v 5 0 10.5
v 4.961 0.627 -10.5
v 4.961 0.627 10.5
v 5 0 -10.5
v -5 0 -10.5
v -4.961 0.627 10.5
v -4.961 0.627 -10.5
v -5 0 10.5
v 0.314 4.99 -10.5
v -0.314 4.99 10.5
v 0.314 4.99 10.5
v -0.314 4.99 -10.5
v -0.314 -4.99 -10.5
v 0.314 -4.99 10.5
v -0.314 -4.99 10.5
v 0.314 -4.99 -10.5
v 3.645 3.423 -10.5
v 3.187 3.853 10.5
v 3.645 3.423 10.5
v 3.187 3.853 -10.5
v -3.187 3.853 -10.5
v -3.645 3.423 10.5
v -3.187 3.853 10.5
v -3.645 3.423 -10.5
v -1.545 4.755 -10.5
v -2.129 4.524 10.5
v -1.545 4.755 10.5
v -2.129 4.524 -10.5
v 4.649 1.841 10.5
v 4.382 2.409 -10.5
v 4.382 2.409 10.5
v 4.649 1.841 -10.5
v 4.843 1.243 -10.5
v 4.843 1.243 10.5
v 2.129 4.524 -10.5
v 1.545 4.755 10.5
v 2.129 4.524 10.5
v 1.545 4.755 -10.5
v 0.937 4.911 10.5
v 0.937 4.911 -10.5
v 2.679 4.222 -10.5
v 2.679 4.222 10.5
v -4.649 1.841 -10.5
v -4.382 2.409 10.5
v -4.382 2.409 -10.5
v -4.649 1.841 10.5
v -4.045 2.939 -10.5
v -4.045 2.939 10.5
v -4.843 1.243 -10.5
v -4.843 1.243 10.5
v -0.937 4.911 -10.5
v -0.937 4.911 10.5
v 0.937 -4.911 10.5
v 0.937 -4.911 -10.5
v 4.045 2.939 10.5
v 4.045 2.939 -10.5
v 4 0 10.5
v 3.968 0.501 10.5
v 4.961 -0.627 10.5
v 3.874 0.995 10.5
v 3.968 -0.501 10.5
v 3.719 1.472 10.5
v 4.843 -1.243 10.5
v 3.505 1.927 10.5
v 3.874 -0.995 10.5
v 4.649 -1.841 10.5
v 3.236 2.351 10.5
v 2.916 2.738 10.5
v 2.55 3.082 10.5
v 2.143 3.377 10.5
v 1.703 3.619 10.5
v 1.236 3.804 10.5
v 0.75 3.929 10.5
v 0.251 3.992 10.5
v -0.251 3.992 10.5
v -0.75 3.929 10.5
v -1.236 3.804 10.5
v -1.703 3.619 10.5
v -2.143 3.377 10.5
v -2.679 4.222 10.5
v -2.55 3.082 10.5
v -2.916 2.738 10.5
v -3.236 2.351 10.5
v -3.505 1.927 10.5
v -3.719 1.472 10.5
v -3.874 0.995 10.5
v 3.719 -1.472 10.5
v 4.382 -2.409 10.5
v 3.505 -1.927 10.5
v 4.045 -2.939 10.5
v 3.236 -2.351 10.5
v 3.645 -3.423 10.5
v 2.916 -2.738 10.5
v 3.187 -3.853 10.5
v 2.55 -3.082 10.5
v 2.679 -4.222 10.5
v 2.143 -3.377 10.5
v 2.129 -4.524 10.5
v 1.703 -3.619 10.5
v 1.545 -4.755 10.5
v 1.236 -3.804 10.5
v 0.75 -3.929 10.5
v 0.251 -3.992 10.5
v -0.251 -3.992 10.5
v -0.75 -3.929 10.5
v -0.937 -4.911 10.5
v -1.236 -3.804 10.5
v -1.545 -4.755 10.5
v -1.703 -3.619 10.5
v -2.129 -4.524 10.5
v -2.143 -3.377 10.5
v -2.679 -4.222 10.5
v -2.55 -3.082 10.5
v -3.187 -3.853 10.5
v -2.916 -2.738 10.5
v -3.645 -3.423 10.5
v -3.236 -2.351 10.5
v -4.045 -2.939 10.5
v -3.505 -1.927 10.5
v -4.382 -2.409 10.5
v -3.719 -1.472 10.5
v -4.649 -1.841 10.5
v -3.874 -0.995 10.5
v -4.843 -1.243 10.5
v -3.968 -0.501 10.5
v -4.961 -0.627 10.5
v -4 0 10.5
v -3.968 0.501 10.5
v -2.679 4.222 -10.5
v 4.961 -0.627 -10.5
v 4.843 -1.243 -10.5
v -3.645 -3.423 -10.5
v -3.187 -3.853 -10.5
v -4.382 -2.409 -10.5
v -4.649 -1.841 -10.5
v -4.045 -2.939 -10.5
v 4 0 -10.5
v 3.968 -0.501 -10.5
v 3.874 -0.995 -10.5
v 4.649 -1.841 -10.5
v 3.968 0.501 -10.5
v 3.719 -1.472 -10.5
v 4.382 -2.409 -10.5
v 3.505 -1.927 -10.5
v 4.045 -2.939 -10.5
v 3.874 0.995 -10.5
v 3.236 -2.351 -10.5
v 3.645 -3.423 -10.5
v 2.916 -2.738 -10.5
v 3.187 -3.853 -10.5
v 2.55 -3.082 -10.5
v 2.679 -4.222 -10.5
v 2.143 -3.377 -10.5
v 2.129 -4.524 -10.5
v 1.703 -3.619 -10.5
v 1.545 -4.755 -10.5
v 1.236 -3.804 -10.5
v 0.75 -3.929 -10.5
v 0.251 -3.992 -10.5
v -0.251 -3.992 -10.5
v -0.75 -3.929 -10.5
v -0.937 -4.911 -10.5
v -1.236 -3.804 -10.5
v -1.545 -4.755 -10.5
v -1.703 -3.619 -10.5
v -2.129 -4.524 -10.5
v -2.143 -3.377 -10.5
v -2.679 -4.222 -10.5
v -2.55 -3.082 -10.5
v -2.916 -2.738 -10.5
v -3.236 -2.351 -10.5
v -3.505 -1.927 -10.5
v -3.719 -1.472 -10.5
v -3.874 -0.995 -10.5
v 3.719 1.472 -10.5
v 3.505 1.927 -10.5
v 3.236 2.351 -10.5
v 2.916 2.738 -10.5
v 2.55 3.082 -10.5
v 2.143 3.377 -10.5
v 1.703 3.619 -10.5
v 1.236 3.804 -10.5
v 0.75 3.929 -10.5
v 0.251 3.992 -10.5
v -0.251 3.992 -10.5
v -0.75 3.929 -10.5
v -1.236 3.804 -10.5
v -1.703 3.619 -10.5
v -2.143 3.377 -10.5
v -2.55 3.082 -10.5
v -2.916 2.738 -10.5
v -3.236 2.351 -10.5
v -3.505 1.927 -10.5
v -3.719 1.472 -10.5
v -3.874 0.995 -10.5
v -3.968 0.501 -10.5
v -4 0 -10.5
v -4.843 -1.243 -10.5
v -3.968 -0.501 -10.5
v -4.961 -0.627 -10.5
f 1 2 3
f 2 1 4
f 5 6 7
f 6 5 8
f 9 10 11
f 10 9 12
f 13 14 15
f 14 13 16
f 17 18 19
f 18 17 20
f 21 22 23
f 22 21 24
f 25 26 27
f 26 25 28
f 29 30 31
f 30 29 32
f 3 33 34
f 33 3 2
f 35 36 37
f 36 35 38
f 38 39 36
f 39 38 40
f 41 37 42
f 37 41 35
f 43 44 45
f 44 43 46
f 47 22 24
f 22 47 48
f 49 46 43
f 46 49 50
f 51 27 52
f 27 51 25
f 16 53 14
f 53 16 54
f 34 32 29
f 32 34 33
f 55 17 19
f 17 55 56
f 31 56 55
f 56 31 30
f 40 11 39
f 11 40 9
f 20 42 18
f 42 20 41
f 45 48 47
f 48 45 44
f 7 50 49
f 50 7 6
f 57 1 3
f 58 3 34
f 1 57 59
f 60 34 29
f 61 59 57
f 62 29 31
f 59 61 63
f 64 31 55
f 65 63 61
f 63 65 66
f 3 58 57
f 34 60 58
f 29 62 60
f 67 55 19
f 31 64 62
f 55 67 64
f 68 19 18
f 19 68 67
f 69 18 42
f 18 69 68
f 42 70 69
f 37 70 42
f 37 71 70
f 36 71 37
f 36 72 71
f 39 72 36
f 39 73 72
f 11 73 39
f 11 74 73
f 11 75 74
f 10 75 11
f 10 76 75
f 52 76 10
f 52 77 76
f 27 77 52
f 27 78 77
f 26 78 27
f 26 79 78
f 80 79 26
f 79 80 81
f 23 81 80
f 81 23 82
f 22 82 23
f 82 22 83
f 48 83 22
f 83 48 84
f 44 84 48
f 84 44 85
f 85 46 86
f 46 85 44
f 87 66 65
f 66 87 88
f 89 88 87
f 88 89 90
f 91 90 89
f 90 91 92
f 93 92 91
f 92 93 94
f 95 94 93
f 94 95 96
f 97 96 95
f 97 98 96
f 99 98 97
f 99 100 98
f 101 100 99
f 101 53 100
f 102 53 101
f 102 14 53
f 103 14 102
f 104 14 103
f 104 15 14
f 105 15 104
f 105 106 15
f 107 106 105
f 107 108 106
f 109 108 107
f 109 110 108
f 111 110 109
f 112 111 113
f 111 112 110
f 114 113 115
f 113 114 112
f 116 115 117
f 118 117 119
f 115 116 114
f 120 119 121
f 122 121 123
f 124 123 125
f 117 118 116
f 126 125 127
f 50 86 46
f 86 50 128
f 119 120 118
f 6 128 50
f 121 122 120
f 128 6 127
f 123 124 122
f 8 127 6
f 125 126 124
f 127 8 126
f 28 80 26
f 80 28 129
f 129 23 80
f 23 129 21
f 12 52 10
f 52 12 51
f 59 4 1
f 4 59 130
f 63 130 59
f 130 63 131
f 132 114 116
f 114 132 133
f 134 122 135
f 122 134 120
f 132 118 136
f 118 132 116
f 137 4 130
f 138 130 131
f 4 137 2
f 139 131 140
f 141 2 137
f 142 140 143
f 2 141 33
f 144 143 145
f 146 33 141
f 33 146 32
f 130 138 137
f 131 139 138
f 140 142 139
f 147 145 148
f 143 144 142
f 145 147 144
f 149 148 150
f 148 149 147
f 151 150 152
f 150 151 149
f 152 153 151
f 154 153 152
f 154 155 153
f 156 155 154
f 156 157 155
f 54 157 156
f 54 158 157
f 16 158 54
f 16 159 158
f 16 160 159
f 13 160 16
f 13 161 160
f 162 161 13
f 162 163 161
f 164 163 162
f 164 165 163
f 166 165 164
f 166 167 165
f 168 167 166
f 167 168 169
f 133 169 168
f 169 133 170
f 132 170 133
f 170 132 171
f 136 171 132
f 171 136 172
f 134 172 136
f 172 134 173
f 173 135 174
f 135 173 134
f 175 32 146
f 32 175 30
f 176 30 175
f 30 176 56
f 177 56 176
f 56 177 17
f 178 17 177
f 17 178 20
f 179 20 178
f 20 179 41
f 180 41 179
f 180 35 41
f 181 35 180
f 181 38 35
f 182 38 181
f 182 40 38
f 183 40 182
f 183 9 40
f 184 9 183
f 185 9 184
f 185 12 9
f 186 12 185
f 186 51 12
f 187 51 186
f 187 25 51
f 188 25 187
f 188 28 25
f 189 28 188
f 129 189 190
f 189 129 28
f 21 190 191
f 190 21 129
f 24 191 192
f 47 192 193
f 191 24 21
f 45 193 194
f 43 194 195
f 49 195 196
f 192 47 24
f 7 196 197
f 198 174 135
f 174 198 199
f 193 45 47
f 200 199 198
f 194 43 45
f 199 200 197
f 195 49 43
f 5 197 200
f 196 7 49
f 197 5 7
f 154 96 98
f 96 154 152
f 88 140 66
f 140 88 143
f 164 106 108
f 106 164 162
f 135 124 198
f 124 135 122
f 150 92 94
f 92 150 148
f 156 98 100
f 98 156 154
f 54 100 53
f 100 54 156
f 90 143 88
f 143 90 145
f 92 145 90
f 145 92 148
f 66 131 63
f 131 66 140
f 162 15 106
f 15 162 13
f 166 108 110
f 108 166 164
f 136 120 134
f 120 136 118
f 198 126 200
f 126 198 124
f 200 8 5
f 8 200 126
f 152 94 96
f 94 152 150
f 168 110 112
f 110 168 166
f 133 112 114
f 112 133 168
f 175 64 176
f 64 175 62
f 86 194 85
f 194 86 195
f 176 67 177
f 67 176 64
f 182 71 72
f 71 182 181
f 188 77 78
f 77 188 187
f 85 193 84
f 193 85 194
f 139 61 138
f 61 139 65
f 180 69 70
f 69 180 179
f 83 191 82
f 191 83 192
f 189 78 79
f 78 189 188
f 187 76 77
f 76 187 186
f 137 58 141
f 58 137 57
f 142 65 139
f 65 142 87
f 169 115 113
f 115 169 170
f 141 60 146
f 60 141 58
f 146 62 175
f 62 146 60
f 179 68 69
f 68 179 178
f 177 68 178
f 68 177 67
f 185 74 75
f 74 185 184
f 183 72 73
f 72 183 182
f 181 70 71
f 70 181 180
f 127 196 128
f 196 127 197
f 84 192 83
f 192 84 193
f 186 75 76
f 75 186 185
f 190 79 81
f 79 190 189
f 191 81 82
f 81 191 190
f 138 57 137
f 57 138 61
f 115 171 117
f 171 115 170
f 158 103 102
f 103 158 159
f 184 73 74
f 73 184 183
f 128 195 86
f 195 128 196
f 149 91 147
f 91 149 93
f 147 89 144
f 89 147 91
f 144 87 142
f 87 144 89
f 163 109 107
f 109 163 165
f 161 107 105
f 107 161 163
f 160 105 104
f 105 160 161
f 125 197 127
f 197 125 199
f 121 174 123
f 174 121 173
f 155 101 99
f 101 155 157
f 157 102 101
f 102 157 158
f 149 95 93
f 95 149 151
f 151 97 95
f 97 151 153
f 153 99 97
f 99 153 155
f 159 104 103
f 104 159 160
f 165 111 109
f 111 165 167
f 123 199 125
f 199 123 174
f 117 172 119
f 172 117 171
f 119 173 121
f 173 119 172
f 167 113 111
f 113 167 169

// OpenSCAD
$fn = 50;


difference() {
	union() {
		translate(v = [0, 0, -10.5000000000]) {
			cylinder(h = 21, r = 5.0000000000);
		}
	}
	union() {
		translate(v = [0, 0, -100.0000000000]) {
			cylinder(h = 200, r = 4);
		}
	}
}
